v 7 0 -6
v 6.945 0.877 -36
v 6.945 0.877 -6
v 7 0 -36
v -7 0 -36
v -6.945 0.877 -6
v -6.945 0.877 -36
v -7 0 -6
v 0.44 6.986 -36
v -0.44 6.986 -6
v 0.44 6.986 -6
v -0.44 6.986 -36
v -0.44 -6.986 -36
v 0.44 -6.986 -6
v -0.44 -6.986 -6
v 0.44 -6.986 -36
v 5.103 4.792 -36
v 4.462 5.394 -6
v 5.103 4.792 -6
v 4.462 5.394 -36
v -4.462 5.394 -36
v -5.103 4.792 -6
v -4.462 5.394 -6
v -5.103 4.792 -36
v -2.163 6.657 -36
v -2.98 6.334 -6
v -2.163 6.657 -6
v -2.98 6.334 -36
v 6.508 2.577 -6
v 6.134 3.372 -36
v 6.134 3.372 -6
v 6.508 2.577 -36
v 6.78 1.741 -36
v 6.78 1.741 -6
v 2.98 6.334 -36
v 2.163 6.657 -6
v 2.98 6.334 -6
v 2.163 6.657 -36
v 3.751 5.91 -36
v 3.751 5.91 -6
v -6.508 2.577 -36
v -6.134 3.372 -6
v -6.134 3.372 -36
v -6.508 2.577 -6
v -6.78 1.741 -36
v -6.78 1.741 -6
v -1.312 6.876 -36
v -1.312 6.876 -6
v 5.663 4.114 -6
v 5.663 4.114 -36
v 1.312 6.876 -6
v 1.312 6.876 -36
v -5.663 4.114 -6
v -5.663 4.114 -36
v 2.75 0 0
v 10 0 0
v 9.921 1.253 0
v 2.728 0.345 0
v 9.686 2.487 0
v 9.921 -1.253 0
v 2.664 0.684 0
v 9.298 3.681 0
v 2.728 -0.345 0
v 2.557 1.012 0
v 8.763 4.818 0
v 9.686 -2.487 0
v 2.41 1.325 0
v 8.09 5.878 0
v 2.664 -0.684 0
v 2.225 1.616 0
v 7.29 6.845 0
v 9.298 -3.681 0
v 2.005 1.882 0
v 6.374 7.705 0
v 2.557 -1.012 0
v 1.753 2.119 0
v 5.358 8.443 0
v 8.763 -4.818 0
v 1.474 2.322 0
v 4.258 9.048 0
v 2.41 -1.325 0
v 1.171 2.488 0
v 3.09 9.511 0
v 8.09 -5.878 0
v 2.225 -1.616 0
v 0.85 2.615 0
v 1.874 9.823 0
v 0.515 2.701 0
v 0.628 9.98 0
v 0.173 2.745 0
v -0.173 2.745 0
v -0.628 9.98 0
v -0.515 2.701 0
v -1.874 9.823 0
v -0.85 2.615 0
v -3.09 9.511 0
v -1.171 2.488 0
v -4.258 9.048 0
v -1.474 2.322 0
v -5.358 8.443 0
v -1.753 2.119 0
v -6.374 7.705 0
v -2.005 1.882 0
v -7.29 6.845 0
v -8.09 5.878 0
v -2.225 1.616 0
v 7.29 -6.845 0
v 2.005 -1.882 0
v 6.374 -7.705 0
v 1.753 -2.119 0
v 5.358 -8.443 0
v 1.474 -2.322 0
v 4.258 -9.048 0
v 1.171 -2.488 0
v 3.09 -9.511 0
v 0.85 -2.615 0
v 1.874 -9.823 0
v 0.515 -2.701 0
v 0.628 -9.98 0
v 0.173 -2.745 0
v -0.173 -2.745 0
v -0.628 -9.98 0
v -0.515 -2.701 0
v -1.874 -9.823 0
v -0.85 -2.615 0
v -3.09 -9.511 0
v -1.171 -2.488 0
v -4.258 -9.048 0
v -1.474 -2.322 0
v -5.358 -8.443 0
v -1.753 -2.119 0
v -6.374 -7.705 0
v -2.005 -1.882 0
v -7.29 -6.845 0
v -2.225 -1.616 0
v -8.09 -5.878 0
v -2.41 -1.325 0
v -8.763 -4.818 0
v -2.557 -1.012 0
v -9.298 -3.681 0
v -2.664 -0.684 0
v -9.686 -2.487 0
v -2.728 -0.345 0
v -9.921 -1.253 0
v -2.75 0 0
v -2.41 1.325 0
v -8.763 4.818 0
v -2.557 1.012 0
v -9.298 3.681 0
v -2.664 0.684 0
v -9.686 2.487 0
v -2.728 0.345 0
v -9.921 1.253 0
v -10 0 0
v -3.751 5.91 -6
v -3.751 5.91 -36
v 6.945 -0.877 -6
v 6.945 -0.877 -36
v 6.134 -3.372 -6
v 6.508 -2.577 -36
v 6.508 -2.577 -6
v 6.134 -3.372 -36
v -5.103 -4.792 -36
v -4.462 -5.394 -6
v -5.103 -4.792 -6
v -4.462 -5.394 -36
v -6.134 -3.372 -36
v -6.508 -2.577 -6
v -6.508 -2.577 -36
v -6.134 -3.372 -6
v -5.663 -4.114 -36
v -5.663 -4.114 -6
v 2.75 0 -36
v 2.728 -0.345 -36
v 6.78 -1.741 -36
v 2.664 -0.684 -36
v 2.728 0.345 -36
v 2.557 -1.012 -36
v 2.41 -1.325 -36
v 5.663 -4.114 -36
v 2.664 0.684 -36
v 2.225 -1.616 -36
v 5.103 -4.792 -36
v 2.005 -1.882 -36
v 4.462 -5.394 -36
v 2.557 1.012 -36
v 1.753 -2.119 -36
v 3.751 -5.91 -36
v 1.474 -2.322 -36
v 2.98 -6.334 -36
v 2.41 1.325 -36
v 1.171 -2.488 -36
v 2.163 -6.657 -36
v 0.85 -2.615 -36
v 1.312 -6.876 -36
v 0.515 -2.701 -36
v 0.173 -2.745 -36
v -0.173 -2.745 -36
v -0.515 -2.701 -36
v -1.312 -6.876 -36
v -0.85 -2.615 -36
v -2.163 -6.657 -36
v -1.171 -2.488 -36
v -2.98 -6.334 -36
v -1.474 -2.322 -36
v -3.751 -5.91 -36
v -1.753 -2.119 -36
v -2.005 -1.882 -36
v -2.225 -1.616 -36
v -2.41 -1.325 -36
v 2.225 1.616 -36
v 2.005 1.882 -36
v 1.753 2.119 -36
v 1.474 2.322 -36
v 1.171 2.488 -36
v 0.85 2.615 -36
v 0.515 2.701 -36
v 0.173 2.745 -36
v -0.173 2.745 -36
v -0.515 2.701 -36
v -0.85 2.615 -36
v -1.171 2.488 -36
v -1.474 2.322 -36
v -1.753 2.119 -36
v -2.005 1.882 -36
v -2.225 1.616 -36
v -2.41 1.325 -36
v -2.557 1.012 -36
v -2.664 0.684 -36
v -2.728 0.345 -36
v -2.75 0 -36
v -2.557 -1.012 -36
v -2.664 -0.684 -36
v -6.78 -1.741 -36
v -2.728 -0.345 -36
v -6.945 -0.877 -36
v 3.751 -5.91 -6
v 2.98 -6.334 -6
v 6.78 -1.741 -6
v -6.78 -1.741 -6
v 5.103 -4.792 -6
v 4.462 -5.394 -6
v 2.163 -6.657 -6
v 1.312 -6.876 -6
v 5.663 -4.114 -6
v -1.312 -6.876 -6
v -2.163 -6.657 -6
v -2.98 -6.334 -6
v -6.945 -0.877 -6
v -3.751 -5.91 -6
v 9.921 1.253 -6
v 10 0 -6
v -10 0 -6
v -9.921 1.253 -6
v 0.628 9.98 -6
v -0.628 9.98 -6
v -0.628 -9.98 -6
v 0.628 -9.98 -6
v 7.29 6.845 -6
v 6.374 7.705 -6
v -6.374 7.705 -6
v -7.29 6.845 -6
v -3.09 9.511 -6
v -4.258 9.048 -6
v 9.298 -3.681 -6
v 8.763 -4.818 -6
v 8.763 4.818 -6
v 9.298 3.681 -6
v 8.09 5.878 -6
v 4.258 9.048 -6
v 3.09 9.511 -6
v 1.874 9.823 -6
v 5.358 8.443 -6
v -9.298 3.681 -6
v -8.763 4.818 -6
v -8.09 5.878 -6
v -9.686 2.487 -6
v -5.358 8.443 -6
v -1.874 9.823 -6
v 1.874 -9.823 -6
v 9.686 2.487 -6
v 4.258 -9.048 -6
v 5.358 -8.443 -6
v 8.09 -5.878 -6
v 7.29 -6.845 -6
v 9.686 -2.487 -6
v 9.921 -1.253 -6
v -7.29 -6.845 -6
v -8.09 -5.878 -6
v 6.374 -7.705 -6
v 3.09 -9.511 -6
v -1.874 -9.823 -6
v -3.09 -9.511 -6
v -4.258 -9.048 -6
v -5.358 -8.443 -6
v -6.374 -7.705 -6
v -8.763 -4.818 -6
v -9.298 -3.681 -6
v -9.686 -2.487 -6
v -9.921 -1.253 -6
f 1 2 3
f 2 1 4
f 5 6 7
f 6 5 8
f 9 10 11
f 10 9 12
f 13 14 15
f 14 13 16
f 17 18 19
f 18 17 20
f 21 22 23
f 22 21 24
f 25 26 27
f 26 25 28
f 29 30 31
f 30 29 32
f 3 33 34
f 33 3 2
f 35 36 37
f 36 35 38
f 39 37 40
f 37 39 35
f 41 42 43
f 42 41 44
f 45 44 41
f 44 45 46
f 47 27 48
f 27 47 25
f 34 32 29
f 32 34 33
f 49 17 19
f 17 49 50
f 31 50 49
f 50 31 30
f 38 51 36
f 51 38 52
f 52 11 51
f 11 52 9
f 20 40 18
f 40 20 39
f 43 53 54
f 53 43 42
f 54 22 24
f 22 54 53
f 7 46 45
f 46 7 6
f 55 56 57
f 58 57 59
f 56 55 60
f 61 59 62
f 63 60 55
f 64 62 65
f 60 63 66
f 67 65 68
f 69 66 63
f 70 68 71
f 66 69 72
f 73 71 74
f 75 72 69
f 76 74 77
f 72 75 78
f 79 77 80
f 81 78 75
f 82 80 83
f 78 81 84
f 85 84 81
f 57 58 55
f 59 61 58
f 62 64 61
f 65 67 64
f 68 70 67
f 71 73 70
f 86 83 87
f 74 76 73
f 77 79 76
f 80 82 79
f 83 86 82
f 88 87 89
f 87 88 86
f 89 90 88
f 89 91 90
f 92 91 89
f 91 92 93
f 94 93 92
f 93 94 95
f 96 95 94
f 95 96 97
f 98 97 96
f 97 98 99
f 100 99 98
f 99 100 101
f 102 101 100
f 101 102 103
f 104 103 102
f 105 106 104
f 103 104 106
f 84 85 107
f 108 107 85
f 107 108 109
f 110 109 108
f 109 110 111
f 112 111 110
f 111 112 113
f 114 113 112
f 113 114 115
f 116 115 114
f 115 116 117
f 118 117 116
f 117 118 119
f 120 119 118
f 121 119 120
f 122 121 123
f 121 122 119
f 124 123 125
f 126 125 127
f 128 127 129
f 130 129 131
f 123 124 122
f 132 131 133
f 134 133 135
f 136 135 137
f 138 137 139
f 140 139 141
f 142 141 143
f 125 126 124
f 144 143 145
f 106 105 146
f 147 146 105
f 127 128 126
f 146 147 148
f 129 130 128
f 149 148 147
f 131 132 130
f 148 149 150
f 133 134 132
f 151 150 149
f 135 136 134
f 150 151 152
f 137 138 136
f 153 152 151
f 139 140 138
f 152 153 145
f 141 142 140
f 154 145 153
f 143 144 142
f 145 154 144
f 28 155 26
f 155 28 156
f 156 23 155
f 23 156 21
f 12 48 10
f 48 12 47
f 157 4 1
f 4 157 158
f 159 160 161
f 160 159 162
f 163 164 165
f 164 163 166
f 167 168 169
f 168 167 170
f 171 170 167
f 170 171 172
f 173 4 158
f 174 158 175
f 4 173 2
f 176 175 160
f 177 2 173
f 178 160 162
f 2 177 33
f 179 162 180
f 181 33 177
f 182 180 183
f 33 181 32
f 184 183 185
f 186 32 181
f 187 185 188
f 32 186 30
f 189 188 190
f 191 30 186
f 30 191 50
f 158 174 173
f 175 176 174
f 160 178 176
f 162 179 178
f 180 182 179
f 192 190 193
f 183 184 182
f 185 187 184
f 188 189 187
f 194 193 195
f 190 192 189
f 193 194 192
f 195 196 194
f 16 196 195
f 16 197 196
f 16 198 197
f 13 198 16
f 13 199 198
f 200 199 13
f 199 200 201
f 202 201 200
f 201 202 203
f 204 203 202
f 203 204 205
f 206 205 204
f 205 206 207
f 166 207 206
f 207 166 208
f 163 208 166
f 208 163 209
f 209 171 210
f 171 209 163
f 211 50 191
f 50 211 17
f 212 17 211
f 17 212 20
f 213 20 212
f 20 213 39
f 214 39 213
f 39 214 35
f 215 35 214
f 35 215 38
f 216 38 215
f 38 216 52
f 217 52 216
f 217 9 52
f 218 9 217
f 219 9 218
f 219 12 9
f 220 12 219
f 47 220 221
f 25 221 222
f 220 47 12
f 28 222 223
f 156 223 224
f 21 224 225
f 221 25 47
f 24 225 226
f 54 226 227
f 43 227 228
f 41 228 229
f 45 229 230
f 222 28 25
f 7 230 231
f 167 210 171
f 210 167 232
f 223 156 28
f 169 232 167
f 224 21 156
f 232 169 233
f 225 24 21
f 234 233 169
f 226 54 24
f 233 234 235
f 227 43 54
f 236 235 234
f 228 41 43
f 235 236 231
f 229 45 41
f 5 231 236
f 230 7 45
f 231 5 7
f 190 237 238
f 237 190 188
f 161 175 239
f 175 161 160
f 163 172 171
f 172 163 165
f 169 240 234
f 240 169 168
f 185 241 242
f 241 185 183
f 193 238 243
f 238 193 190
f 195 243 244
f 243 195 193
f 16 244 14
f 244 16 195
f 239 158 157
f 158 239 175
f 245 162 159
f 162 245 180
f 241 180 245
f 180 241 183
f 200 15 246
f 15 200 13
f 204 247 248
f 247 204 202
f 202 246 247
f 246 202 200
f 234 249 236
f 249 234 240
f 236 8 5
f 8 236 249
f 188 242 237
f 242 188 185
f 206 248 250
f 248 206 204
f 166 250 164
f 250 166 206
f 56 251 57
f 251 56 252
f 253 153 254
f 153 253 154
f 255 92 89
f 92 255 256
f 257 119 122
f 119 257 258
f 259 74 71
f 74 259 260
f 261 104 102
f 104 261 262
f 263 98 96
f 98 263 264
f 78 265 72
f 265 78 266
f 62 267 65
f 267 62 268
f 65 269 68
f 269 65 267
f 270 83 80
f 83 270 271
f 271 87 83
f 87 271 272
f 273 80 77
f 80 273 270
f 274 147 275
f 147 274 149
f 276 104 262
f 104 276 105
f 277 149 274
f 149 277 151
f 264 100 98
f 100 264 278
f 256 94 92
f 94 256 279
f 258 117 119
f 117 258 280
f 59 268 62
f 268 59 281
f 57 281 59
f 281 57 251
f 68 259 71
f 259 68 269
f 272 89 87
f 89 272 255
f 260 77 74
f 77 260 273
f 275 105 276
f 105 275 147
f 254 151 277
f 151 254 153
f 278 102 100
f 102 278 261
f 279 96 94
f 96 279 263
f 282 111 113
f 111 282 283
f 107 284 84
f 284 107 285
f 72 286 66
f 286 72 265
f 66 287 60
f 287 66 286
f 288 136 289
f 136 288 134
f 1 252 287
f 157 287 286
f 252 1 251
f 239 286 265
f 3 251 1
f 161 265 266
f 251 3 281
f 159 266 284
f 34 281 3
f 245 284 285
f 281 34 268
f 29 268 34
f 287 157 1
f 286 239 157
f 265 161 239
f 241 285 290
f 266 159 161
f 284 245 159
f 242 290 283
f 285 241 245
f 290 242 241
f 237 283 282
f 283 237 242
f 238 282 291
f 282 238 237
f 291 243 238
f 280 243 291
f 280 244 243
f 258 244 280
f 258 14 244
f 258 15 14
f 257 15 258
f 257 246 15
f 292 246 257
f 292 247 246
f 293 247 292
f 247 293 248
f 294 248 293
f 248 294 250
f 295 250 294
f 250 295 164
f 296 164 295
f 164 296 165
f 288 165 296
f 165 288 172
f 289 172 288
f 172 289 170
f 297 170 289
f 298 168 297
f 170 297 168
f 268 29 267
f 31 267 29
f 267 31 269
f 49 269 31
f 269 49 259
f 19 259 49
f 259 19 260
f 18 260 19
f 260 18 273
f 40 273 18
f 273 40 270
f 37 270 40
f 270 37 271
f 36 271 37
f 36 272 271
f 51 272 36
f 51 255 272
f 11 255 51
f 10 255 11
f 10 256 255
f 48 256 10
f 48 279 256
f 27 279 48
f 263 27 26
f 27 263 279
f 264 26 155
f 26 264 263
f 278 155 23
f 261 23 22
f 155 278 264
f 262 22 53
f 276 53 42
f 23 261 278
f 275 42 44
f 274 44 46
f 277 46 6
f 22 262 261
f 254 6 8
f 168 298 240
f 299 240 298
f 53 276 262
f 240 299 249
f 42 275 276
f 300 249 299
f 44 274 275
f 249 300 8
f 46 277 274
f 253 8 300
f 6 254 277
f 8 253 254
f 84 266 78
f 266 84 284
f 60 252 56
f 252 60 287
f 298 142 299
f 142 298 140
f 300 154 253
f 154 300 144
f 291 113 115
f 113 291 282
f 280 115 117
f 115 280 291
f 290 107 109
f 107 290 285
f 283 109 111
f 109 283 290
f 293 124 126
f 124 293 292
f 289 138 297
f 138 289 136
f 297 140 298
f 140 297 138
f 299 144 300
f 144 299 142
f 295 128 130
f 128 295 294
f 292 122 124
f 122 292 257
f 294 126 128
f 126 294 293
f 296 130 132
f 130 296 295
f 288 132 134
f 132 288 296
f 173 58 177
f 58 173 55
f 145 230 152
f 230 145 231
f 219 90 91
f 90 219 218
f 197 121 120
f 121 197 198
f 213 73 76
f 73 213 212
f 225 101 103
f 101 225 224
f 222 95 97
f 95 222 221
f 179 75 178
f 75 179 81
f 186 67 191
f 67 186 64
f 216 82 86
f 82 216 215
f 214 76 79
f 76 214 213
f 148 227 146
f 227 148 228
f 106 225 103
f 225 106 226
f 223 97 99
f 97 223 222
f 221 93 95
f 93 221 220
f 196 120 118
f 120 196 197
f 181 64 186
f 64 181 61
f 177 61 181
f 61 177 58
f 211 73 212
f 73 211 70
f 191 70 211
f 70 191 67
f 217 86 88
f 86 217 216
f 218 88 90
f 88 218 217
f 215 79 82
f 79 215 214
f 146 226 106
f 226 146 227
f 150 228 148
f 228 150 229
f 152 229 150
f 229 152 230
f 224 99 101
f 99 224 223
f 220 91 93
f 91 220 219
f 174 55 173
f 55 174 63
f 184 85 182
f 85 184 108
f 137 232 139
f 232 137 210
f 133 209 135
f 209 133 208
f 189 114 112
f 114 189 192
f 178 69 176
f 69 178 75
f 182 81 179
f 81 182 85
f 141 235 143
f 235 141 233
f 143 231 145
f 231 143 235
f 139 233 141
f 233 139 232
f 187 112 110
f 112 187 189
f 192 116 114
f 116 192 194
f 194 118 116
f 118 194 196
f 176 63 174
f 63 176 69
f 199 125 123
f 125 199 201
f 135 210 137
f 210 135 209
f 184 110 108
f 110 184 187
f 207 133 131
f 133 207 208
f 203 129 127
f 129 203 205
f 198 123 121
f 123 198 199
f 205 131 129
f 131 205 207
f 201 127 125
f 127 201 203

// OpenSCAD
$fn = 50;


difference() {
	union() {
		translate(v = [0, 0, -36.0000000000]) {
			cylinder(h = 36, r = 7.0000000000);
		}
		translate(v = [0, 0, -6.0000000000]) {
			cylinder(h = 6, r = 10.0000000000);
		}
	}
	union() {
		#translate(v = [0, 0, -36]) {
			cylinder(h = 36, r = 2.7500000000);
		}
	}
}
